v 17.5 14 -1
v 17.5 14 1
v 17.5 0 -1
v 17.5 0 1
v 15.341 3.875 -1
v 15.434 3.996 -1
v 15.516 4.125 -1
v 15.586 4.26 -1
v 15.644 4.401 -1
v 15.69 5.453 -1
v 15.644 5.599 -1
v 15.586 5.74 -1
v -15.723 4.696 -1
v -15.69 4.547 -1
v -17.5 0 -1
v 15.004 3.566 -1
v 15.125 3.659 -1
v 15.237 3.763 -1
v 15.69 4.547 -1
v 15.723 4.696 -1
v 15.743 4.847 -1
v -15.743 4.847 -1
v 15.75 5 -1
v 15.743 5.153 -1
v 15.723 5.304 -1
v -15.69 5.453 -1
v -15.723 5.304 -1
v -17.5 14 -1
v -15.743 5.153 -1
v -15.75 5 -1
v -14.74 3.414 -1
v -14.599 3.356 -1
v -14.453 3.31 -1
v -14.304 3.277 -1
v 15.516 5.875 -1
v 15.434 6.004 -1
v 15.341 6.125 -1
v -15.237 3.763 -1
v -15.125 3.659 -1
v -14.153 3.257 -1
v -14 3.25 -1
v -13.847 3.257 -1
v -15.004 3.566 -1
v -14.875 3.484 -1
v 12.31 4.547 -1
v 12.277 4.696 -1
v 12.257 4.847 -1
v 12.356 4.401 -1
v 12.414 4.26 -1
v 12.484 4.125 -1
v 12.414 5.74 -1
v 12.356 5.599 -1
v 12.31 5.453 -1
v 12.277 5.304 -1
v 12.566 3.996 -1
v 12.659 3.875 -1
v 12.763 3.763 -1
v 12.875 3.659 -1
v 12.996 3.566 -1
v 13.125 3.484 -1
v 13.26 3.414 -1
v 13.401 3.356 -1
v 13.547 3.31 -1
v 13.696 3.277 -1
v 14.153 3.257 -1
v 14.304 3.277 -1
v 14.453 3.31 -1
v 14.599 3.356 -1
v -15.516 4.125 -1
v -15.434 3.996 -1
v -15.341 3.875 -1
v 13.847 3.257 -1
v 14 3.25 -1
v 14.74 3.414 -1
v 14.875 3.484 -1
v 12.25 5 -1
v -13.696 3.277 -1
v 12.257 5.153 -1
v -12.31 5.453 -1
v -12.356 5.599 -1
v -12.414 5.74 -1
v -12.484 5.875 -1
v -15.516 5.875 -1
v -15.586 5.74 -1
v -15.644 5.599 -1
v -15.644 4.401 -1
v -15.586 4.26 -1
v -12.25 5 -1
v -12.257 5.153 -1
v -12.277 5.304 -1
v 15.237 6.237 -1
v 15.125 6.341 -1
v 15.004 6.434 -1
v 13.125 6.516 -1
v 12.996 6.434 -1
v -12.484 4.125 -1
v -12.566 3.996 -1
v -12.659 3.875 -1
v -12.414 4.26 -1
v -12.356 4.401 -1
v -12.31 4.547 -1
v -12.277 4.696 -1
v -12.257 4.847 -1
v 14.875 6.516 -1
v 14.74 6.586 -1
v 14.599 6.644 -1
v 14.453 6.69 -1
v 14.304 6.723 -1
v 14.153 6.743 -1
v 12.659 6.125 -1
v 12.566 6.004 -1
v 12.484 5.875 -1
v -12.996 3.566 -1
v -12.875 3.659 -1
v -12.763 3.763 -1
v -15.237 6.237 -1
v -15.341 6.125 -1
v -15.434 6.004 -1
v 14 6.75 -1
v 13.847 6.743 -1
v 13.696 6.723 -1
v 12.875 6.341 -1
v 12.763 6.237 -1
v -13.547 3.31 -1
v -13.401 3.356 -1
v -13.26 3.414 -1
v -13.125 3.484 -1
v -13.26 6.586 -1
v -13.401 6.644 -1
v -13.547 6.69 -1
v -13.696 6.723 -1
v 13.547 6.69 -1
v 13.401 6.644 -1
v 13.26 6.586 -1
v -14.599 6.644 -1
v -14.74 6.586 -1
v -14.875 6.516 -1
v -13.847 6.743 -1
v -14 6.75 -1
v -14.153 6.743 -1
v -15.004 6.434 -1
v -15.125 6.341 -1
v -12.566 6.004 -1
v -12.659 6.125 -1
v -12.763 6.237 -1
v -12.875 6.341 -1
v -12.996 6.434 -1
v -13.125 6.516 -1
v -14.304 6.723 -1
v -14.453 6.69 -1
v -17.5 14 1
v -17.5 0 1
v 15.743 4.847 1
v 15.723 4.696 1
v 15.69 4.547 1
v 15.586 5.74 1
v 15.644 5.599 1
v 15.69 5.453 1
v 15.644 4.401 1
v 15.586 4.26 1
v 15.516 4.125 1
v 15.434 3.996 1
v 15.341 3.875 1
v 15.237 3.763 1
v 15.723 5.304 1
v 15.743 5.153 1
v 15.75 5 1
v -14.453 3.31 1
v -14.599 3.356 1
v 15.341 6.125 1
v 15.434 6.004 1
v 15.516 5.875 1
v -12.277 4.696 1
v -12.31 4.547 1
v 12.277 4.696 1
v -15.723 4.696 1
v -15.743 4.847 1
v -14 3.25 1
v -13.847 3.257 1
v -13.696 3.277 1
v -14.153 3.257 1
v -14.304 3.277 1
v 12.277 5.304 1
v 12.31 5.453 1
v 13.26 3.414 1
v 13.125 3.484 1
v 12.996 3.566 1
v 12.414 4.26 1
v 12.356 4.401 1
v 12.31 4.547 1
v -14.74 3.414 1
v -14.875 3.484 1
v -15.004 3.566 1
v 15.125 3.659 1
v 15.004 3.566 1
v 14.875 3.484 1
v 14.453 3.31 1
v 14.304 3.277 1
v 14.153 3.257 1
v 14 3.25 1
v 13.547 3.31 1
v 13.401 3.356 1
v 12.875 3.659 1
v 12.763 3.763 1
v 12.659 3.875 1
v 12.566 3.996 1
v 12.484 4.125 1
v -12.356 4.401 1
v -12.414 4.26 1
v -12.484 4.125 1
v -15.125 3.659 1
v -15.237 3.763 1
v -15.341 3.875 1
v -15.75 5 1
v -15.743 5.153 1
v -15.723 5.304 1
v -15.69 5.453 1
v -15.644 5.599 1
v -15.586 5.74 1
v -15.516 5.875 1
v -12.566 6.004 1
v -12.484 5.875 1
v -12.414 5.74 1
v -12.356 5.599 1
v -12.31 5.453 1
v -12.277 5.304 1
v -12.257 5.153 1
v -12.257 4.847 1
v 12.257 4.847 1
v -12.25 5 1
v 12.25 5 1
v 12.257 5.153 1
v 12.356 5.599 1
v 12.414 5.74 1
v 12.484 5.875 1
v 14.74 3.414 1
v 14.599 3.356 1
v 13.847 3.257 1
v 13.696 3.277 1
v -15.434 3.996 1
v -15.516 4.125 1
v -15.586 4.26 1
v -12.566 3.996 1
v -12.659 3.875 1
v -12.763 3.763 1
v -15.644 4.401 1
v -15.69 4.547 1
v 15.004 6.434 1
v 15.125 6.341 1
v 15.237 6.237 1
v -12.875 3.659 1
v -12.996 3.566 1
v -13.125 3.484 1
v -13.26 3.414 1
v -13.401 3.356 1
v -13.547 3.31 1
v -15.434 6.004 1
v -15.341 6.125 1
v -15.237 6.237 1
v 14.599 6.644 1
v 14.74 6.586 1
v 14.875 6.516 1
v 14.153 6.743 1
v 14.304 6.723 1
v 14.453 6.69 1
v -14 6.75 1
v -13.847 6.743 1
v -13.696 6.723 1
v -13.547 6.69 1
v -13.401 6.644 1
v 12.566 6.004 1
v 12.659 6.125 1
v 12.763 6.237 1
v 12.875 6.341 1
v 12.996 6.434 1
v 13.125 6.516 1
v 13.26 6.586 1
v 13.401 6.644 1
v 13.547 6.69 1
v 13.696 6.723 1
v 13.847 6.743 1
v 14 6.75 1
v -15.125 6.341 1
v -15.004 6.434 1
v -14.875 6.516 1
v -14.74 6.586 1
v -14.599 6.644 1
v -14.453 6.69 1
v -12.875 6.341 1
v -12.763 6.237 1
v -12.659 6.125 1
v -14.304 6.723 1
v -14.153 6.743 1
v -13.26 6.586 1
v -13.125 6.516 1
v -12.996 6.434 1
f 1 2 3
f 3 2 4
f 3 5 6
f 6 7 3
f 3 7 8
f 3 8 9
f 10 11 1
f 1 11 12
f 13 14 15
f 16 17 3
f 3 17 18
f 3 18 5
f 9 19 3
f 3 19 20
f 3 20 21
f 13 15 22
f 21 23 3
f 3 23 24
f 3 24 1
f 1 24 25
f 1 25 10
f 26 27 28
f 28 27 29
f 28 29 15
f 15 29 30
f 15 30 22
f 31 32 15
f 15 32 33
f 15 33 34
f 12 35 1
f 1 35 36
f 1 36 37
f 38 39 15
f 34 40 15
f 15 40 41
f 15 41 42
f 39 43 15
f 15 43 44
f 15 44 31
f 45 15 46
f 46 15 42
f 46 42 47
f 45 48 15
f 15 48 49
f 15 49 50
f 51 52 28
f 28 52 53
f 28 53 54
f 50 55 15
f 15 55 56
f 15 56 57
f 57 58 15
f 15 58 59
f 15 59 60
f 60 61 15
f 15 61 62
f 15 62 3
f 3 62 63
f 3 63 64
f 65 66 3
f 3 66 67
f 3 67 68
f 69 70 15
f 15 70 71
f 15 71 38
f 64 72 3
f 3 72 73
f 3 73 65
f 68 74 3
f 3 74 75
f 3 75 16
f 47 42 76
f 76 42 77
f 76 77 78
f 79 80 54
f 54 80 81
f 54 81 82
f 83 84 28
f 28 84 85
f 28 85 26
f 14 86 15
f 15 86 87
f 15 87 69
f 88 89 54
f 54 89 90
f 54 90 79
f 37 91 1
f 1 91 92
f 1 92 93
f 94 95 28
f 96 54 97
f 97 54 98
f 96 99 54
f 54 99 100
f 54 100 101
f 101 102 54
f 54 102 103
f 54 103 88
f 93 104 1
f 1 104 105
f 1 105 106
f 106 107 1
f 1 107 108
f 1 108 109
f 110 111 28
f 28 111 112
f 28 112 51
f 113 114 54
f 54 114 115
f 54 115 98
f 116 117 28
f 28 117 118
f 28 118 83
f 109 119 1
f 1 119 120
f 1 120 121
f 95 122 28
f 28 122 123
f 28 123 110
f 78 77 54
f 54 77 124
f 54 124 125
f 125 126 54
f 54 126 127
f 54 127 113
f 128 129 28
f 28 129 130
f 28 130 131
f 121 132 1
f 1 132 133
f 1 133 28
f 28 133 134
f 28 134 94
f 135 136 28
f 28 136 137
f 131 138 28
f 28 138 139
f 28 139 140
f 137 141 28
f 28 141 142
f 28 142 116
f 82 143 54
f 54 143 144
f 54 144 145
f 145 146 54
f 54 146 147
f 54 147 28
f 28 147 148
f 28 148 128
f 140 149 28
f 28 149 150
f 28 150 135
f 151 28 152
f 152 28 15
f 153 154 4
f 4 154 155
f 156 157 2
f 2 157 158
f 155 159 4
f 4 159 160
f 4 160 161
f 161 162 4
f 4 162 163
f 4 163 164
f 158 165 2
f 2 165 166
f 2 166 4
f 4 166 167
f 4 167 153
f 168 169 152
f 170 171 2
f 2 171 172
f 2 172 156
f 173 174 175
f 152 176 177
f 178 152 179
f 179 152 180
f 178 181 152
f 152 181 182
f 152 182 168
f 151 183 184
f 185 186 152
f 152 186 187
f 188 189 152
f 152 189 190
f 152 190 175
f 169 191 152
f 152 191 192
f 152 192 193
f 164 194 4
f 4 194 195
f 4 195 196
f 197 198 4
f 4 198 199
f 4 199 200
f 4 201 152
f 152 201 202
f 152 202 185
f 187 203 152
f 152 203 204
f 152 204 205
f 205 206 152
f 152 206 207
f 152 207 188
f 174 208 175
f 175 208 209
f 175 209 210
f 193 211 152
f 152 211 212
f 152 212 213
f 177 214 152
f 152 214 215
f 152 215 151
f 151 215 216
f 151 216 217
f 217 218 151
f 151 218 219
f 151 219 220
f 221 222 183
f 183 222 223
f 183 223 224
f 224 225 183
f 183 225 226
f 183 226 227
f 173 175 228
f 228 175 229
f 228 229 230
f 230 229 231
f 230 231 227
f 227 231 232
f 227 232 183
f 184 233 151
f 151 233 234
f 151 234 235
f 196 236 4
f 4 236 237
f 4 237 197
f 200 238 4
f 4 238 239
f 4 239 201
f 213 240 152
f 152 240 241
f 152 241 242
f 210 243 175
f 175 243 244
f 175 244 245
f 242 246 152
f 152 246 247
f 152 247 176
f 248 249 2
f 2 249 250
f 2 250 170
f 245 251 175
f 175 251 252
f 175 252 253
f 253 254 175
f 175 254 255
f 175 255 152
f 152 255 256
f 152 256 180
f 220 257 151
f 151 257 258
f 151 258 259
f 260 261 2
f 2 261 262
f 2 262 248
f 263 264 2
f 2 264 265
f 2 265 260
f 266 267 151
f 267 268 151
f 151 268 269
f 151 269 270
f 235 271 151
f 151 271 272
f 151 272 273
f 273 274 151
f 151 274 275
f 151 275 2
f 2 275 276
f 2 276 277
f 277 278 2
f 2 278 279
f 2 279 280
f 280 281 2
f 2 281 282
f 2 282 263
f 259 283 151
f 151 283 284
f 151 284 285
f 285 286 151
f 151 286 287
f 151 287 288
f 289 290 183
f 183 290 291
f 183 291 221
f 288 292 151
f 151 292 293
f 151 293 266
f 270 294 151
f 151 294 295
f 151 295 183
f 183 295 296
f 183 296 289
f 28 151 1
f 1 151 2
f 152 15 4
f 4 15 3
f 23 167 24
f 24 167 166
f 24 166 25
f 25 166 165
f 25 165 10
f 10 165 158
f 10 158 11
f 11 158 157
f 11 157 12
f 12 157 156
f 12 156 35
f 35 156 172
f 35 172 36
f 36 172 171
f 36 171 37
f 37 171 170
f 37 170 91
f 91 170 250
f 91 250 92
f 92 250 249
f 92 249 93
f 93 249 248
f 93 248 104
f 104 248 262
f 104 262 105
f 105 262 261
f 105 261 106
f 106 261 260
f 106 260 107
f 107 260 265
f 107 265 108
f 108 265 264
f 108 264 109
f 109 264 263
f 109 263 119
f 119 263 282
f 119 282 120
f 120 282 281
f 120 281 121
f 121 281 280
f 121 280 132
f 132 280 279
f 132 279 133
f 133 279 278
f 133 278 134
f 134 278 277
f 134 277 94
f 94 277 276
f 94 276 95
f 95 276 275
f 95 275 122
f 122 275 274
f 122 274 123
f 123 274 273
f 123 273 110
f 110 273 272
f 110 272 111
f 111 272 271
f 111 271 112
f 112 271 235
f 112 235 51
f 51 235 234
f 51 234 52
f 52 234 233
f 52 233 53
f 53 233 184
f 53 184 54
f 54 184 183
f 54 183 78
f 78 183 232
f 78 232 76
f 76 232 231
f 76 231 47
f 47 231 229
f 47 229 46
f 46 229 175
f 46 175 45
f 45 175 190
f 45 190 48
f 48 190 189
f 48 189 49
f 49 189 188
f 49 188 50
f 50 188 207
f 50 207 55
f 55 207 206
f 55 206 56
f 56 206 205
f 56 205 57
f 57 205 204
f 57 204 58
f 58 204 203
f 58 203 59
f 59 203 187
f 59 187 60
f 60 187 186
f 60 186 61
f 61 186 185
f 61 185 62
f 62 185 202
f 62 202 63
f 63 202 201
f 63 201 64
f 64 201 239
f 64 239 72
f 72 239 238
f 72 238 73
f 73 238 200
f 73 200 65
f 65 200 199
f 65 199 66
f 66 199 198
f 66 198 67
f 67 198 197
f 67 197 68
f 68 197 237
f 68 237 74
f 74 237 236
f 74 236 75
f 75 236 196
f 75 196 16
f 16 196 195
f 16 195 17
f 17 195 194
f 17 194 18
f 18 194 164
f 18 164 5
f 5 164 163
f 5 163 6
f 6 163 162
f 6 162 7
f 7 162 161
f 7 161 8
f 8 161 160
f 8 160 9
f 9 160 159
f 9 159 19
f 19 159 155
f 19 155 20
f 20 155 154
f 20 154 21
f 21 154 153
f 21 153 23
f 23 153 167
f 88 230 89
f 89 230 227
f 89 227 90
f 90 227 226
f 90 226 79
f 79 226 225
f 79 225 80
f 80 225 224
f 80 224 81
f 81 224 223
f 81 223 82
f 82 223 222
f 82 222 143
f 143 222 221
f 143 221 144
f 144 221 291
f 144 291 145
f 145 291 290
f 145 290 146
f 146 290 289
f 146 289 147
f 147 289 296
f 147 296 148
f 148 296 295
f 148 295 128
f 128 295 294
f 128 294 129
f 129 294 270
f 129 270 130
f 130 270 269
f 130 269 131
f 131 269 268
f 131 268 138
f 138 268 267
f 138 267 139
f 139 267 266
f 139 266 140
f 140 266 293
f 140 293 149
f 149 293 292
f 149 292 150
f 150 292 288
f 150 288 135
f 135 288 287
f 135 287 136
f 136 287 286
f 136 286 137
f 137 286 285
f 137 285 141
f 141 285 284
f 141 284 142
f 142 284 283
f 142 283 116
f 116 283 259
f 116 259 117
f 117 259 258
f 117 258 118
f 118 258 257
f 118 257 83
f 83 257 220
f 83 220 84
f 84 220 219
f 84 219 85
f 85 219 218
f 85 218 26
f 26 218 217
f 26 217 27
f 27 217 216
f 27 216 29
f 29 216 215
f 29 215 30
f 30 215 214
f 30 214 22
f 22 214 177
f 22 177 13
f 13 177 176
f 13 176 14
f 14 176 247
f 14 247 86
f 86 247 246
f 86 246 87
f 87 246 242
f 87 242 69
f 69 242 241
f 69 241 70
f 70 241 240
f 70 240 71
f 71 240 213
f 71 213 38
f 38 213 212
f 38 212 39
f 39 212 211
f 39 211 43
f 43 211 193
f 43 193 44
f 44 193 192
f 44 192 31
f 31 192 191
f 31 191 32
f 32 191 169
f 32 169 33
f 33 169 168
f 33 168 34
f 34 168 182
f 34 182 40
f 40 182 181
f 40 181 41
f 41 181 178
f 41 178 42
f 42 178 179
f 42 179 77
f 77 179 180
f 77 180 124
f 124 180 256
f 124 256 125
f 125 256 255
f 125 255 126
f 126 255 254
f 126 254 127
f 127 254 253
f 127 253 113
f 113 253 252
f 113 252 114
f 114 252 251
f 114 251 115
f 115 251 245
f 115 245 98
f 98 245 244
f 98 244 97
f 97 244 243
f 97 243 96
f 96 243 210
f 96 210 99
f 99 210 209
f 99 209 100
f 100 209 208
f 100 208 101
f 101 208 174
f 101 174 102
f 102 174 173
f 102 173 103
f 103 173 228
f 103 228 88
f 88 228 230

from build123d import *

# Parameters (mm, degrees)
SKETCH1_W           = 35
SKETCH1_H           = 2
BOSS_EXTRUDE1_DEPTH = 14
SKETCH2_R           = 1.75
CUT_EXTRUDE1_DEPTH  = 14


with BuildPart() as part:
    # Sketch1 → Boss-Extrude1 (new body)
    with BuildSketch(Plane(origin=(0, 0, 0), x_dir=(1, 0, 0), z_dir=(0, 1, 0))):
        Rectangle(SKETCH1_W, SKETCH1_H)
    extrude(amount=BOSS_EXTRUDE1_DEPTH)

    # Sketch2 → Cut-Extrude1 (cut)
    with BuildSketch(Plane.XY.offset(1)):
        with Locations((-14, 5)):
            Circle(SKETCH2_R)
        with Locations((14, 5)):
            Circle(SKETCH2_R)
    extrude(amount=-CUT_EXTRUDE1_DEPTH, mode=Mode.SUBTRACT)


solid = part.part
